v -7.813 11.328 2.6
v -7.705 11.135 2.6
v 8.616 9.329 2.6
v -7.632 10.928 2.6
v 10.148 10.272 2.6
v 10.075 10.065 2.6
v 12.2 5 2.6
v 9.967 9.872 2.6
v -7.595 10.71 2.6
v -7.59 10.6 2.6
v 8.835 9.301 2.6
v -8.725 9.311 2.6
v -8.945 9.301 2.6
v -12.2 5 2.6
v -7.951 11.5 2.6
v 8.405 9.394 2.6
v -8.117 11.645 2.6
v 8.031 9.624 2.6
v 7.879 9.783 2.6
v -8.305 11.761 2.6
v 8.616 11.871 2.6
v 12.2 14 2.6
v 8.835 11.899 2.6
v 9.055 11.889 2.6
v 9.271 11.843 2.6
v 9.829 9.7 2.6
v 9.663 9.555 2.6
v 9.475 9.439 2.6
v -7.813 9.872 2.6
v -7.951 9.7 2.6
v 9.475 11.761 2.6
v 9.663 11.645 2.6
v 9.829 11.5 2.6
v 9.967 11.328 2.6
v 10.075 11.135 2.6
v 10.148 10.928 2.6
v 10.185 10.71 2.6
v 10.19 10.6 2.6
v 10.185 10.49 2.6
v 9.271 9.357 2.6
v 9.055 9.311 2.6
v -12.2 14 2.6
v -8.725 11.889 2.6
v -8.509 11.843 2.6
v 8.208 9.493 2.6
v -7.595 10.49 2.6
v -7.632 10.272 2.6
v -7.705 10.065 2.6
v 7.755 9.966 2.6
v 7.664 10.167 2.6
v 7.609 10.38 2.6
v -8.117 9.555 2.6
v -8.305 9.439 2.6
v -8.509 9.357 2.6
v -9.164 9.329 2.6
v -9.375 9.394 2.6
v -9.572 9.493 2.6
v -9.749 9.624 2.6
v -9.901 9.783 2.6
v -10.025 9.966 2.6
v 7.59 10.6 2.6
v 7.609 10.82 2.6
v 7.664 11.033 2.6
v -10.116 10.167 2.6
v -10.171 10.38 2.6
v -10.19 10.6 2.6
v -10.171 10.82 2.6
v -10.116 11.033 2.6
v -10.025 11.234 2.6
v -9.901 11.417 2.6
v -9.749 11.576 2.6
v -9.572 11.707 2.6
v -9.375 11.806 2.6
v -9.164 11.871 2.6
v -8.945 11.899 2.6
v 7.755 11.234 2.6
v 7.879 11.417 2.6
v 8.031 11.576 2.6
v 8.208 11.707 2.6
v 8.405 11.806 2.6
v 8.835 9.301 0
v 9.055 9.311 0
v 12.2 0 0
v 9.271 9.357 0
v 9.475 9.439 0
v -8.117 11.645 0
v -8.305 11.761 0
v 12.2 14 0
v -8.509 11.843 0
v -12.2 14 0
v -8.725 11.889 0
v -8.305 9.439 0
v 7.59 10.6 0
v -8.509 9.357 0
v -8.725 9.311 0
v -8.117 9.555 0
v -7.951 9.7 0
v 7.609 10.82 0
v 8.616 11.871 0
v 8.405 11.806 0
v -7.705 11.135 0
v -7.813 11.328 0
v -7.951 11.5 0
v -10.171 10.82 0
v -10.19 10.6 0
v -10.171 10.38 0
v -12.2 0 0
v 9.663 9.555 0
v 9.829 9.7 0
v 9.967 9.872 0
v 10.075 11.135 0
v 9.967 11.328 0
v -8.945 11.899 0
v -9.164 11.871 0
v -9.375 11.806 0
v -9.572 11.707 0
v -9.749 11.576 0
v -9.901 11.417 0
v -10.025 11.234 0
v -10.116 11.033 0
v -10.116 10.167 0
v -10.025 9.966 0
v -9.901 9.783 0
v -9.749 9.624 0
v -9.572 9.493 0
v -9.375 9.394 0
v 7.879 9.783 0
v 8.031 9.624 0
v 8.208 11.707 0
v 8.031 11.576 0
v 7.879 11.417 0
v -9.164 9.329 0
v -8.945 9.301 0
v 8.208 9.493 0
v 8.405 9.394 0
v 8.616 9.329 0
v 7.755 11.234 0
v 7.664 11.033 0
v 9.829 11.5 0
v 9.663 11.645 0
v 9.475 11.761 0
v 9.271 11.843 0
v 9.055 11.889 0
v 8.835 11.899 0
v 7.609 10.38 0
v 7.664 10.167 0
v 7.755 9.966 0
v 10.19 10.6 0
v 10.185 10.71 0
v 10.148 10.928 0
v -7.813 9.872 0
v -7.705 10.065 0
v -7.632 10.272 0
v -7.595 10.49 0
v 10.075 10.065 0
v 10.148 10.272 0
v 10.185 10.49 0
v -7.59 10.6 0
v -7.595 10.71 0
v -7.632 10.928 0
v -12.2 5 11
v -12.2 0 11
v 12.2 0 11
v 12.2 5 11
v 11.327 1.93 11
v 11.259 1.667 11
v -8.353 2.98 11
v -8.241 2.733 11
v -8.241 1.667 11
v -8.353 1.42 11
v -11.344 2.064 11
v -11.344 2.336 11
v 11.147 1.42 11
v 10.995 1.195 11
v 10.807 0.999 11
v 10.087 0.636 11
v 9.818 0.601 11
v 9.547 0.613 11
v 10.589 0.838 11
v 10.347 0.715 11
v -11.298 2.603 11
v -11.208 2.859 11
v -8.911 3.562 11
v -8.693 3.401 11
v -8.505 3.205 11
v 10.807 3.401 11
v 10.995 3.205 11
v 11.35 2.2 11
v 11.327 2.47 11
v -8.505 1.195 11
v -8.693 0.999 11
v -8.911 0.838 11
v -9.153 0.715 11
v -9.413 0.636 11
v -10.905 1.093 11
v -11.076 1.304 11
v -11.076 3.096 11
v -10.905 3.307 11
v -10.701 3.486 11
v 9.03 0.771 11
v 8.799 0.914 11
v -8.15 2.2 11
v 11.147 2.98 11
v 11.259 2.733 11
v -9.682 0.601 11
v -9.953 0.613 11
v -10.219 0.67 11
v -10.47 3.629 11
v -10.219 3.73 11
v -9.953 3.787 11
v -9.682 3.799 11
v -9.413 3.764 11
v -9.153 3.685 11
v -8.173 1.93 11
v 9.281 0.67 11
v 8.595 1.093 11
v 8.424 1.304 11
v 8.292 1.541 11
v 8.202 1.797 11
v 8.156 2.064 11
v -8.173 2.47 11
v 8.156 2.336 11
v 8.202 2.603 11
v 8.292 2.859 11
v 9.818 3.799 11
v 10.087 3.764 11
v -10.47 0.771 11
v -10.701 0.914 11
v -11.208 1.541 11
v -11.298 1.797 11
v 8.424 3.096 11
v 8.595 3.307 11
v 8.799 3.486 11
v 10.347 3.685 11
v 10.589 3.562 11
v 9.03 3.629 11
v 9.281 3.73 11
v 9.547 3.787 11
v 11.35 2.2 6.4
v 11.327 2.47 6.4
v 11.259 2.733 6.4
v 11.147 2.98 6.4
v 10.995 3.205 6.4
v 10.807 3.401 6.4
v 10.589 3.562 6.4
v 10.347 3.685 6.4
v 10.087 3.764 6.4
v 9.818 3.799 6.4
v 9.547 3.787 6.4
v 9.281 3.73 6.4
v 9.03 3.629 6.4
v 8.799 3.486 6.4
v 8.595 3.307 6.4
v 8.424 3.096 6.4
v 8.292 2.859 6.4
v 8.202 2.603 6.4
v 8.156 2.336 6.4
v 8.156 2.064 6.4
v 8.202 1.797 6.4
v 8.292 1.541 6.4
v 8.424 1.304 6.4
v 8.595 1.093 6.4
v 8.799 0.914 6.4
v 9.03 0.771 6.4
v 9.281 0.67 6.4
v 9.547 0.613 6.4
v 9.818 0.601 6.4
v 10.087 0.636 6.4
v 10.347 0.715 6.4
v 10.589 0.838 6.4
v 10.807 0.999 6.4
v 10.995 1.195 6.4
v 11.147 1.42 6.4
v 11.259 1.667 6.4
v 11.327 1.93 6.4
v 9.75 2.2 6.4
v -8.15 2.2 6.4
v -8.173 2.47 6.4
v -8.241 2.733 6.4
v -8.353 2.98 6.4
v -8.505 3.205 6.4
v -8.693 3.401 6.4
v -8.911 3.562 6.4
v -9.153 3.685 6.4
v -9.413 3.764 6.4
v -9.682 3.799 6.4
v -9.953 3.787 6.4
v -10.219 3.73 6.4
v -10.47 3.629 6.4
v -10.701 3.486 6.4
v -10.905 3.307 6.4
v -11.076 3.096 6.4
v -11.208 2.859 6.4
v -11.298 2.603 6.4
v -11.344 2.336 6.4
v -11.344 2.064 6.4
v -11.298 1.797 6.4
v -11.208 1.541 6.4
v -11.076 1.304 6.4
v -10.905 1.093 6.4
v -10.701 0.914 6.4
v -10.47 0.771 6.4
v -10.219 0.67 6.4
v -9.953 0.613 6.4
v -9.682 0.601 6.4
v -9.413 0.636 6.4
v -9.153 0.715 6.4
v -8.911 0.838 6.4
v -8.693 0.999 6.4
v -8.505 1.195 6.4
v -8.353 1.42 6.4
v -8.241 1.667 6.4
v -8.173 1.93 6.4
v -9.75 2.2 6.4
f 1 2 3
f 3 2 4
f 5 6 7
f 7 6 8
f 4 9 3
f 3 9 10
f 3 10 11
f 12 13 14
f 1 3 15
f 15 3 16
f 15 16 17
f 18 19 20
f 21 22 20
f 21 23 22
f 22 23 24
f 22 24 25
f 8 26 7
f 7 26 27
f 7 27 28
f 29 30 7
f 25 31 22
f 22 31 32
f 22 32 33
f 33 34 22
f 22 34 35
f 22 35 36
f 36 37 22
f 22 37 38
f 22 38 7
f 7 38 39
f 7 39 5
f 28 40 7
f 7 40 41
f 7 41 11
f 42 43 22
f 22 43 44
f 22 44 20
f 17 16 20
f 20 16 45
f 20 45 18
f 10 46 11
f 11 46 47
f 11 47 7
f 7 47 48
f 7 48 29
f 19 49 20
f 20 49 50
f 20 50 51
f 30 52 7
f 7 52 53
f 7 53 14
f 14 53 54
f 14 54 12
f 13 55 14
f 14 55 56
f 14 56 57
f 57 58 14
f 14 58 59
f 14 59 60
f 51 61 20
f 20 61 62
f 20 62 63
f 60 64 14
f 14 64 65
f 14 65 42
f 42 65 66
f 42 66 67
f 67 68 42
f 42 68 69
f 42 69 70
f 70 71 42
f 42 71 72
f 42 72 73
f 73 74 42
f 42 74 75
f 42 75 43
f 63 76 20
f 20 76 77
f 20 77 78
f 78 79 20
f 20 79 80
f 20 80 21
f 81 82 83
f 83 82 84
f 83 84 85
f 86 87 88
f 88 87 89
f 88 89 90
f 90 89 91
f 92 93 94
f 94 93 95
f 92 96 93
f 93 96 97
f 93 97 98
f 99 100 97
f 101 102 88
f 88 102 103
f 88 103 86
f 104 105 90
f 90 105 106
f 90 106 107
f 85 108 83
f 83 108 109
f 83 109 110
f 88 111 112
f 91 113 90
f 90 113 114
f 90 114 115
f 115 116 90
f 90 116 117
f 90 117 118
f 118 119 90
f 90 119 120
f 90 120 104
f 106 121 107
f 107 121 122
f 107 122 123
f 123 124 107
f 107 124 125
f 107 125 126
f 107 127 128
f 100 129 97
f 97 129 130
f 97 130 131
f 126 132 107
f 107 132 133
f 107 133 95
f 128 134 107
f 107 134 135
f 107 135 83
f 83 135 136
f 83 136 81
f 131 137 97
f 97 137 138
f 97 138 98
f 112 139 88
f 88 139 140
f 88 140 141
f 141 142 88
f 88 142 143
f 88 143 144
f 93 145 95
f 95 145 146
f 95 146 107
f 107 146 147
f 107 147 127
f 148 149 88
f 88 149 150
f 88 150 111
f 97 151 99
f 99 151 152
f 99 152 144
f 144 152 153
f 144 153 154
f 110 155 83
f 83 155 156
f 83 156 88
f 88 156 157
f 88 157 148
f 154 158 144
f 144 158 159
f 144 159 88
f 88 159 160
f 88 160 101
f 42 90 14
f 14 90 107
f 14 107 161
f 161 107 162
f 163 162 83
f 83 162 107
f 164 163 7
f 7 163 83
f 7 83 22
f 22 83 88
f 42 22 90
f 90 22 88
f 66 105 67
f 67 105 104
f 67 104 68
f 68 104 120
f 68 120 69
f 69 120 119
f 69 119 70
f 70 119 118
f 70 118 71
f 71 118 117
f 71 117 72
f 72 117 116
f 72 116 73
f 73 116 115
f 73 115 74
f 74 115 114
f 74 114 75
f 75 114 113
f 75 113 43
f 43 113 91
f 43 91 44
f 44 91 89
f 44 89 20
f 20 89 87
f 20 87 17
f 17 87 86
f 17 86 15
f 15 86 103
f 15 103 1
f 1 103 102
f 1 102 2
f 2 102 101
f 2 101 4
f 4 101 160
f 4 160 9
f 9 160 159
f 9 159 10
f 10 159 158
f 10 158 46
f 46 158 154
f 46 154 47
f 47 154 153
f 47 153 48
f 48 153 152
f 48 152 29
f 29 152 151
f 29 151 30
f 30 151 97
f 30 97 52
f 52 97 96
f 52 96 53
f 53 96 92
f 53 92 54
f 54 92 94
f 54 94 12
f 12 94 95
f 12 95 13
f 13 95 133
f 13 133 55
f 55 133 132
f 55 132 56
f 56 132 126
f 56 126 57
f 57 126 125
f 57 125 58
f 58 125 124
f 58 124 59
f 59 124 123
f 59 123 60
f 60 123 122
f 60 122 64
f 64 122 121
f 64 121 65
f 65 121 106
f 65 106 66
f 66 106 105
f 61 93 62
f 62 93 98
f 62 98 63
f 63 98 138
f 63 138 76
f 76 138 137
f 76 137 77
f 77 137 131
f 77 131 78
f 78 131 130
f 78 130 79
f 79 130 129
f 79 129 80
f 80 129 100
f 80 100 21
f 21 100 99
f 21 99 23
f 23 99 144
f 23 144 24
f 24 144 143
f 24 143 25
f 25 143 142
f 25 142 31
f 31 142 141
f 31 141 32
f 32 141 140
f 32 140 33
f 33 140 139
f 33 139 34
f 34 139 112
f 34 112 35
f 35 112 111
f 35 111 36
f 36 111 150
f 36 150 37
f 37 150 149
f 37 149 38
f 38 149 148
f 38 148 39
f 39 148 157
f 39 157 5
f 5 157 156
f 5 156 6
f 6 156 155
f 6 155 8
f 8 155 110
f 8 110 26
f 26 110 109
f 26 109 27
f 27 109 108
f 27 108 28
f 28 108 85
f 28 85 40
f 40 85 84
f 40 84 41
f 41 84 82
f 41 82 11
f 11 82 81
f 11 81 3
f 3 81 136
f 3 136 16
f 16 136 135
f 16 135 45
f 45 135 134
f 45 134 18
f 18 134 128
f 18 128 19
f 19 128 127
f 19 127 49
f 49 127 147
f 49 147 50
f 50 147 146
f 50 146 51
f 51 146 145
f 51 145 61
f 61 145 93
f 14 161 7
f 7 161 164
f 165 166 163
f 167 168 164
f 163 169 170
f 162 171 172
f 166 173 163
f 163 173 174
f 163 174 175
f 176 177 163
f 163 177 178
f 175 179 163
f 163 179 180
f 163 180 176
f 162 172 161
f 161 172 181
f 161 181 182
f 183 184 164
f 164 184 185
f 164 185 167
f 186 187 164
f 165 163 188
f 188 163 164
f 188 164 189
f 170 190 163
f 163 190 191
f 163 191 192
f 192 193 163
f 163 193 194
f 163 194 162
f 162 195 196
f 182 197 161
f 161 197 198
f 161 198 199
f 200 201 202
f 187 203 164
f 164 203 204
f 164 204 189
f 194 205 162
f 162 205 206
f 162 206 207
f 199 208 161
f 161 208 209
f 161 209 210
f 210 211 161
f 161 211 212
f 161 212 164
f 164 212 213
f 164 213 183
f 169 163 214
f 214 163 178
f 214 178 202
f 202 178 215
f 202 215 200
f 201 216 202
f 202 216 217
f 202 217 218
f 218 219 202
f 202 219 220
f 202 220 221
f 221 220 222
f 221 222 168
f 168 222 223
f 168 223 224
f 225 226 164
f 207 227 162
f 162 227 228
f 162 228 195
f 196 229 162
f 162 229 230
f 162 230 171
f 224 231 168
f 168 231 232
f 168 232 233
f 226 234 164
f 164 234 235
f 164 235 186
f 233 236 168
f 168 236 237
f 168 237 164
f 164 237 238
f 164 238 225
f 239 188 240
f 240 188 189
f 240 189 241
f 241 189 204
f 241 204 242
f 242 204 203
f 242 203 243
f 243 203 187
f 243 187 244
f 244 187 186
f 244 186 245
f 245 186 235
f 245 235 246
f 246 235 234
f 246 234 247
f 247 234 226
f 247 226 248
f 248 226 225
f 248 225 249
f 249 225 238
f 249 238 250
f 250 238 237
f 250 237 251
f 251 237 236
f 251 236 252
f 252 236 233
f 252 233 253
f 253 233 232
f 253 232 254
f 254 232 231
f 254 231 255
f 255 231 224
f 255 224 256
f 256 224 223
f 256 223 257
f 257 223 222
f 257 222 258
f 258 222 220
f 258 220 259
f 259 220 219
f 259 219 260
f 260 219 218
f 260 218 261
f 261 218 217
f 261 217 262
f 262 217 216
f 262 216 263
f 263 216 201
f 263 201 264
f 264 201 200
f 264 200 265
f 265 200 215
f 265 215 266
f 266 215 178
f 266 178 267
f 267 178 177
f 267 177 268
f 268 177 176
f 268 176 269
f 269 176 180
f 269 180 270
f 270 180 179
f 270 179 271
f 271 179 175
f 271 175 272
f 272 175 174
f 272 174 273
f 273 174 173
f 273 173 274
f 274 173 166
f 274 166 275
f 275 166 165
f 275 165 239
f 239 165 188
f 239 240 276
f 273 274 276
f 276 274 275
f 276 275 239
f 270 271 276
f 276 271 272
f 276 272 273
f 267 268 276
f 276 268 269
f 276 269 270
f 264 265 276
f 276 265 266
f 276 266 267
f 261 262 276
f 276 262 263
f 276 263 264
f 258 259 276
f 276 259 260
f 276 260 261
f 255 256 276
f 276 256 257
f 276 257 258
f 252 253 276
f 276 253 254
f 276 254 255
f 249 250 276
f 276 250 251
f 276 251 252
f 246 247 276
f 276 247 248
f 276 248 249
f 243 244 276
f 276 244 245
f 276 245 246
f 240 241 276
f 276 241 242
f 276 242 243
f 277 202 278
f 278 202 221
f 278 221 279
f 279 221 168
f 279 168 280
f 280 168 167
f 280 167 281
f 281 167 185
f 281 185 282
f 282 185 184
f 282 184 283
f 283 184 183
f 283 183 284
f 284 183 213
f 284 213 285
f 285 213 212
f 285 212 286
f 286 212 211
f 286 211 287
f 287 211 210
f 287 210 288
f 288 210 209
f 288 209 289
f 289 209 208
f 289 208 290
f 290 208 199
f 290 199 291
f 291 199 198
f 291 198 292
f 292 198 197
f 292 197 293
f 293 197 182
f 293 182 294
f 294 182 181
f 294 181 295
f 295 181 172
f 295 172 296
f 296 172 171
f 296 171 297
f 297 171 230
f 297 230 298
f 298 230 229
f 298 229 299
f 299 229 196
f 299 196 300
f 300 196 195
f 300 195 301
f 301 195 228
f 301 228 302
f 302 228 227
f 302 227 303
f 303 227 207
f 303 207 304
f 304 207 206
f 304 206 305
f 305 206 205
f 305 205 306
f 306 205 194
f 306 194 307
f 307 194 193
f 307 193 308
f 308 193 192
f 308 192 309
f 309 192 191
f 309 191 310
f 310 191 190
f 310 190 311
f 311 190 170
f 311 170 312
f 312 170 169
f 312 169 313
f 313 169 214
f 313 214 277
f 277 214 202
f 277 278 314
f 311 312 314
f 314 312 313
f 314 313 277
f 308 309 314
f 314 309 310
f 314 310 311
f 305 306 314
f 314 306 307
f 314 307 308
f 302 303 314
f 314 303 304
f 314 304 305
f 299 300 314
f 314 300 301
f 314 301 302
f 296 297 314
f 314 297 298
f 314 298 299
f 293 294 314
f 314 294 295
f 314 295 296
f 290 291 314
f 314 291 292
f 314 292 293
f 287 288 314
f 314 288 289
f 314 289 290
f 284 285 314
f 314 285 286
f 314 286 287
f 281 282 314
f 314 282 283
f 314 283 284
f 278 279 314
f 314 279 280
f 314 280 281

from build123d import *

# Parameters (mm, degrees)
SKETCH1_W           = 24.4
SKETCH1_H           = 14
SKETCH1_R           = 1.3
BOSS_EXTRUDE1_DEPTH = 2.6
SKETCH2_W           = 24.4
SKETCH2_H           = 5
BOSS_EXTRUDE2_DEPTH = 11
SKETCH3_R           = 1.6
CUT_EXTRUDE1_DEPTH  = 4.6


with BuildPart() as part:
    # Sketch1 → Boss-Extrude1 (new body)
    with BuildSketch(Plane.XY):
        with Locations((0, 7)):
            Rectangle(SKETCH1_W, SKETCH1_H)
        with Locations((-8.89, 10.6)):
            Circle(SKETCH1_R, mode=Mode.SUBTRACT)
        with Locations((8.89, 10.6)):
            Circle(SKETCH1_R, mode=Mode.SUBTRACT)
    extrude(amount=BOSS_EXTRUDE1_DEPTH)

    # Sketch2 → Boss-Extrude2 (add)
    with BuildSketch(Plane.XY):
        with Locations((0, 2.5)):
            Rectangle(SKETCH2_W, SKETCH2_H)
    extrude(amount=BOSS_EXTRUDE2_DEPTH)

    # Sketch3 → Cut-Extrude1 (cut)
    with BuildSketch(Plane.XY.offset(11)):
        with Locations((-9.75, 2.2)):
            Circle(SKETCH3_R)
        with Locations((9.75, 2.2)):
            Circle(SKETCH3_R)
    extrude(amount=-CUT_EXTRUDE1_DEPTH, mode=Mode.SUBTRACT)


solid = part.part
